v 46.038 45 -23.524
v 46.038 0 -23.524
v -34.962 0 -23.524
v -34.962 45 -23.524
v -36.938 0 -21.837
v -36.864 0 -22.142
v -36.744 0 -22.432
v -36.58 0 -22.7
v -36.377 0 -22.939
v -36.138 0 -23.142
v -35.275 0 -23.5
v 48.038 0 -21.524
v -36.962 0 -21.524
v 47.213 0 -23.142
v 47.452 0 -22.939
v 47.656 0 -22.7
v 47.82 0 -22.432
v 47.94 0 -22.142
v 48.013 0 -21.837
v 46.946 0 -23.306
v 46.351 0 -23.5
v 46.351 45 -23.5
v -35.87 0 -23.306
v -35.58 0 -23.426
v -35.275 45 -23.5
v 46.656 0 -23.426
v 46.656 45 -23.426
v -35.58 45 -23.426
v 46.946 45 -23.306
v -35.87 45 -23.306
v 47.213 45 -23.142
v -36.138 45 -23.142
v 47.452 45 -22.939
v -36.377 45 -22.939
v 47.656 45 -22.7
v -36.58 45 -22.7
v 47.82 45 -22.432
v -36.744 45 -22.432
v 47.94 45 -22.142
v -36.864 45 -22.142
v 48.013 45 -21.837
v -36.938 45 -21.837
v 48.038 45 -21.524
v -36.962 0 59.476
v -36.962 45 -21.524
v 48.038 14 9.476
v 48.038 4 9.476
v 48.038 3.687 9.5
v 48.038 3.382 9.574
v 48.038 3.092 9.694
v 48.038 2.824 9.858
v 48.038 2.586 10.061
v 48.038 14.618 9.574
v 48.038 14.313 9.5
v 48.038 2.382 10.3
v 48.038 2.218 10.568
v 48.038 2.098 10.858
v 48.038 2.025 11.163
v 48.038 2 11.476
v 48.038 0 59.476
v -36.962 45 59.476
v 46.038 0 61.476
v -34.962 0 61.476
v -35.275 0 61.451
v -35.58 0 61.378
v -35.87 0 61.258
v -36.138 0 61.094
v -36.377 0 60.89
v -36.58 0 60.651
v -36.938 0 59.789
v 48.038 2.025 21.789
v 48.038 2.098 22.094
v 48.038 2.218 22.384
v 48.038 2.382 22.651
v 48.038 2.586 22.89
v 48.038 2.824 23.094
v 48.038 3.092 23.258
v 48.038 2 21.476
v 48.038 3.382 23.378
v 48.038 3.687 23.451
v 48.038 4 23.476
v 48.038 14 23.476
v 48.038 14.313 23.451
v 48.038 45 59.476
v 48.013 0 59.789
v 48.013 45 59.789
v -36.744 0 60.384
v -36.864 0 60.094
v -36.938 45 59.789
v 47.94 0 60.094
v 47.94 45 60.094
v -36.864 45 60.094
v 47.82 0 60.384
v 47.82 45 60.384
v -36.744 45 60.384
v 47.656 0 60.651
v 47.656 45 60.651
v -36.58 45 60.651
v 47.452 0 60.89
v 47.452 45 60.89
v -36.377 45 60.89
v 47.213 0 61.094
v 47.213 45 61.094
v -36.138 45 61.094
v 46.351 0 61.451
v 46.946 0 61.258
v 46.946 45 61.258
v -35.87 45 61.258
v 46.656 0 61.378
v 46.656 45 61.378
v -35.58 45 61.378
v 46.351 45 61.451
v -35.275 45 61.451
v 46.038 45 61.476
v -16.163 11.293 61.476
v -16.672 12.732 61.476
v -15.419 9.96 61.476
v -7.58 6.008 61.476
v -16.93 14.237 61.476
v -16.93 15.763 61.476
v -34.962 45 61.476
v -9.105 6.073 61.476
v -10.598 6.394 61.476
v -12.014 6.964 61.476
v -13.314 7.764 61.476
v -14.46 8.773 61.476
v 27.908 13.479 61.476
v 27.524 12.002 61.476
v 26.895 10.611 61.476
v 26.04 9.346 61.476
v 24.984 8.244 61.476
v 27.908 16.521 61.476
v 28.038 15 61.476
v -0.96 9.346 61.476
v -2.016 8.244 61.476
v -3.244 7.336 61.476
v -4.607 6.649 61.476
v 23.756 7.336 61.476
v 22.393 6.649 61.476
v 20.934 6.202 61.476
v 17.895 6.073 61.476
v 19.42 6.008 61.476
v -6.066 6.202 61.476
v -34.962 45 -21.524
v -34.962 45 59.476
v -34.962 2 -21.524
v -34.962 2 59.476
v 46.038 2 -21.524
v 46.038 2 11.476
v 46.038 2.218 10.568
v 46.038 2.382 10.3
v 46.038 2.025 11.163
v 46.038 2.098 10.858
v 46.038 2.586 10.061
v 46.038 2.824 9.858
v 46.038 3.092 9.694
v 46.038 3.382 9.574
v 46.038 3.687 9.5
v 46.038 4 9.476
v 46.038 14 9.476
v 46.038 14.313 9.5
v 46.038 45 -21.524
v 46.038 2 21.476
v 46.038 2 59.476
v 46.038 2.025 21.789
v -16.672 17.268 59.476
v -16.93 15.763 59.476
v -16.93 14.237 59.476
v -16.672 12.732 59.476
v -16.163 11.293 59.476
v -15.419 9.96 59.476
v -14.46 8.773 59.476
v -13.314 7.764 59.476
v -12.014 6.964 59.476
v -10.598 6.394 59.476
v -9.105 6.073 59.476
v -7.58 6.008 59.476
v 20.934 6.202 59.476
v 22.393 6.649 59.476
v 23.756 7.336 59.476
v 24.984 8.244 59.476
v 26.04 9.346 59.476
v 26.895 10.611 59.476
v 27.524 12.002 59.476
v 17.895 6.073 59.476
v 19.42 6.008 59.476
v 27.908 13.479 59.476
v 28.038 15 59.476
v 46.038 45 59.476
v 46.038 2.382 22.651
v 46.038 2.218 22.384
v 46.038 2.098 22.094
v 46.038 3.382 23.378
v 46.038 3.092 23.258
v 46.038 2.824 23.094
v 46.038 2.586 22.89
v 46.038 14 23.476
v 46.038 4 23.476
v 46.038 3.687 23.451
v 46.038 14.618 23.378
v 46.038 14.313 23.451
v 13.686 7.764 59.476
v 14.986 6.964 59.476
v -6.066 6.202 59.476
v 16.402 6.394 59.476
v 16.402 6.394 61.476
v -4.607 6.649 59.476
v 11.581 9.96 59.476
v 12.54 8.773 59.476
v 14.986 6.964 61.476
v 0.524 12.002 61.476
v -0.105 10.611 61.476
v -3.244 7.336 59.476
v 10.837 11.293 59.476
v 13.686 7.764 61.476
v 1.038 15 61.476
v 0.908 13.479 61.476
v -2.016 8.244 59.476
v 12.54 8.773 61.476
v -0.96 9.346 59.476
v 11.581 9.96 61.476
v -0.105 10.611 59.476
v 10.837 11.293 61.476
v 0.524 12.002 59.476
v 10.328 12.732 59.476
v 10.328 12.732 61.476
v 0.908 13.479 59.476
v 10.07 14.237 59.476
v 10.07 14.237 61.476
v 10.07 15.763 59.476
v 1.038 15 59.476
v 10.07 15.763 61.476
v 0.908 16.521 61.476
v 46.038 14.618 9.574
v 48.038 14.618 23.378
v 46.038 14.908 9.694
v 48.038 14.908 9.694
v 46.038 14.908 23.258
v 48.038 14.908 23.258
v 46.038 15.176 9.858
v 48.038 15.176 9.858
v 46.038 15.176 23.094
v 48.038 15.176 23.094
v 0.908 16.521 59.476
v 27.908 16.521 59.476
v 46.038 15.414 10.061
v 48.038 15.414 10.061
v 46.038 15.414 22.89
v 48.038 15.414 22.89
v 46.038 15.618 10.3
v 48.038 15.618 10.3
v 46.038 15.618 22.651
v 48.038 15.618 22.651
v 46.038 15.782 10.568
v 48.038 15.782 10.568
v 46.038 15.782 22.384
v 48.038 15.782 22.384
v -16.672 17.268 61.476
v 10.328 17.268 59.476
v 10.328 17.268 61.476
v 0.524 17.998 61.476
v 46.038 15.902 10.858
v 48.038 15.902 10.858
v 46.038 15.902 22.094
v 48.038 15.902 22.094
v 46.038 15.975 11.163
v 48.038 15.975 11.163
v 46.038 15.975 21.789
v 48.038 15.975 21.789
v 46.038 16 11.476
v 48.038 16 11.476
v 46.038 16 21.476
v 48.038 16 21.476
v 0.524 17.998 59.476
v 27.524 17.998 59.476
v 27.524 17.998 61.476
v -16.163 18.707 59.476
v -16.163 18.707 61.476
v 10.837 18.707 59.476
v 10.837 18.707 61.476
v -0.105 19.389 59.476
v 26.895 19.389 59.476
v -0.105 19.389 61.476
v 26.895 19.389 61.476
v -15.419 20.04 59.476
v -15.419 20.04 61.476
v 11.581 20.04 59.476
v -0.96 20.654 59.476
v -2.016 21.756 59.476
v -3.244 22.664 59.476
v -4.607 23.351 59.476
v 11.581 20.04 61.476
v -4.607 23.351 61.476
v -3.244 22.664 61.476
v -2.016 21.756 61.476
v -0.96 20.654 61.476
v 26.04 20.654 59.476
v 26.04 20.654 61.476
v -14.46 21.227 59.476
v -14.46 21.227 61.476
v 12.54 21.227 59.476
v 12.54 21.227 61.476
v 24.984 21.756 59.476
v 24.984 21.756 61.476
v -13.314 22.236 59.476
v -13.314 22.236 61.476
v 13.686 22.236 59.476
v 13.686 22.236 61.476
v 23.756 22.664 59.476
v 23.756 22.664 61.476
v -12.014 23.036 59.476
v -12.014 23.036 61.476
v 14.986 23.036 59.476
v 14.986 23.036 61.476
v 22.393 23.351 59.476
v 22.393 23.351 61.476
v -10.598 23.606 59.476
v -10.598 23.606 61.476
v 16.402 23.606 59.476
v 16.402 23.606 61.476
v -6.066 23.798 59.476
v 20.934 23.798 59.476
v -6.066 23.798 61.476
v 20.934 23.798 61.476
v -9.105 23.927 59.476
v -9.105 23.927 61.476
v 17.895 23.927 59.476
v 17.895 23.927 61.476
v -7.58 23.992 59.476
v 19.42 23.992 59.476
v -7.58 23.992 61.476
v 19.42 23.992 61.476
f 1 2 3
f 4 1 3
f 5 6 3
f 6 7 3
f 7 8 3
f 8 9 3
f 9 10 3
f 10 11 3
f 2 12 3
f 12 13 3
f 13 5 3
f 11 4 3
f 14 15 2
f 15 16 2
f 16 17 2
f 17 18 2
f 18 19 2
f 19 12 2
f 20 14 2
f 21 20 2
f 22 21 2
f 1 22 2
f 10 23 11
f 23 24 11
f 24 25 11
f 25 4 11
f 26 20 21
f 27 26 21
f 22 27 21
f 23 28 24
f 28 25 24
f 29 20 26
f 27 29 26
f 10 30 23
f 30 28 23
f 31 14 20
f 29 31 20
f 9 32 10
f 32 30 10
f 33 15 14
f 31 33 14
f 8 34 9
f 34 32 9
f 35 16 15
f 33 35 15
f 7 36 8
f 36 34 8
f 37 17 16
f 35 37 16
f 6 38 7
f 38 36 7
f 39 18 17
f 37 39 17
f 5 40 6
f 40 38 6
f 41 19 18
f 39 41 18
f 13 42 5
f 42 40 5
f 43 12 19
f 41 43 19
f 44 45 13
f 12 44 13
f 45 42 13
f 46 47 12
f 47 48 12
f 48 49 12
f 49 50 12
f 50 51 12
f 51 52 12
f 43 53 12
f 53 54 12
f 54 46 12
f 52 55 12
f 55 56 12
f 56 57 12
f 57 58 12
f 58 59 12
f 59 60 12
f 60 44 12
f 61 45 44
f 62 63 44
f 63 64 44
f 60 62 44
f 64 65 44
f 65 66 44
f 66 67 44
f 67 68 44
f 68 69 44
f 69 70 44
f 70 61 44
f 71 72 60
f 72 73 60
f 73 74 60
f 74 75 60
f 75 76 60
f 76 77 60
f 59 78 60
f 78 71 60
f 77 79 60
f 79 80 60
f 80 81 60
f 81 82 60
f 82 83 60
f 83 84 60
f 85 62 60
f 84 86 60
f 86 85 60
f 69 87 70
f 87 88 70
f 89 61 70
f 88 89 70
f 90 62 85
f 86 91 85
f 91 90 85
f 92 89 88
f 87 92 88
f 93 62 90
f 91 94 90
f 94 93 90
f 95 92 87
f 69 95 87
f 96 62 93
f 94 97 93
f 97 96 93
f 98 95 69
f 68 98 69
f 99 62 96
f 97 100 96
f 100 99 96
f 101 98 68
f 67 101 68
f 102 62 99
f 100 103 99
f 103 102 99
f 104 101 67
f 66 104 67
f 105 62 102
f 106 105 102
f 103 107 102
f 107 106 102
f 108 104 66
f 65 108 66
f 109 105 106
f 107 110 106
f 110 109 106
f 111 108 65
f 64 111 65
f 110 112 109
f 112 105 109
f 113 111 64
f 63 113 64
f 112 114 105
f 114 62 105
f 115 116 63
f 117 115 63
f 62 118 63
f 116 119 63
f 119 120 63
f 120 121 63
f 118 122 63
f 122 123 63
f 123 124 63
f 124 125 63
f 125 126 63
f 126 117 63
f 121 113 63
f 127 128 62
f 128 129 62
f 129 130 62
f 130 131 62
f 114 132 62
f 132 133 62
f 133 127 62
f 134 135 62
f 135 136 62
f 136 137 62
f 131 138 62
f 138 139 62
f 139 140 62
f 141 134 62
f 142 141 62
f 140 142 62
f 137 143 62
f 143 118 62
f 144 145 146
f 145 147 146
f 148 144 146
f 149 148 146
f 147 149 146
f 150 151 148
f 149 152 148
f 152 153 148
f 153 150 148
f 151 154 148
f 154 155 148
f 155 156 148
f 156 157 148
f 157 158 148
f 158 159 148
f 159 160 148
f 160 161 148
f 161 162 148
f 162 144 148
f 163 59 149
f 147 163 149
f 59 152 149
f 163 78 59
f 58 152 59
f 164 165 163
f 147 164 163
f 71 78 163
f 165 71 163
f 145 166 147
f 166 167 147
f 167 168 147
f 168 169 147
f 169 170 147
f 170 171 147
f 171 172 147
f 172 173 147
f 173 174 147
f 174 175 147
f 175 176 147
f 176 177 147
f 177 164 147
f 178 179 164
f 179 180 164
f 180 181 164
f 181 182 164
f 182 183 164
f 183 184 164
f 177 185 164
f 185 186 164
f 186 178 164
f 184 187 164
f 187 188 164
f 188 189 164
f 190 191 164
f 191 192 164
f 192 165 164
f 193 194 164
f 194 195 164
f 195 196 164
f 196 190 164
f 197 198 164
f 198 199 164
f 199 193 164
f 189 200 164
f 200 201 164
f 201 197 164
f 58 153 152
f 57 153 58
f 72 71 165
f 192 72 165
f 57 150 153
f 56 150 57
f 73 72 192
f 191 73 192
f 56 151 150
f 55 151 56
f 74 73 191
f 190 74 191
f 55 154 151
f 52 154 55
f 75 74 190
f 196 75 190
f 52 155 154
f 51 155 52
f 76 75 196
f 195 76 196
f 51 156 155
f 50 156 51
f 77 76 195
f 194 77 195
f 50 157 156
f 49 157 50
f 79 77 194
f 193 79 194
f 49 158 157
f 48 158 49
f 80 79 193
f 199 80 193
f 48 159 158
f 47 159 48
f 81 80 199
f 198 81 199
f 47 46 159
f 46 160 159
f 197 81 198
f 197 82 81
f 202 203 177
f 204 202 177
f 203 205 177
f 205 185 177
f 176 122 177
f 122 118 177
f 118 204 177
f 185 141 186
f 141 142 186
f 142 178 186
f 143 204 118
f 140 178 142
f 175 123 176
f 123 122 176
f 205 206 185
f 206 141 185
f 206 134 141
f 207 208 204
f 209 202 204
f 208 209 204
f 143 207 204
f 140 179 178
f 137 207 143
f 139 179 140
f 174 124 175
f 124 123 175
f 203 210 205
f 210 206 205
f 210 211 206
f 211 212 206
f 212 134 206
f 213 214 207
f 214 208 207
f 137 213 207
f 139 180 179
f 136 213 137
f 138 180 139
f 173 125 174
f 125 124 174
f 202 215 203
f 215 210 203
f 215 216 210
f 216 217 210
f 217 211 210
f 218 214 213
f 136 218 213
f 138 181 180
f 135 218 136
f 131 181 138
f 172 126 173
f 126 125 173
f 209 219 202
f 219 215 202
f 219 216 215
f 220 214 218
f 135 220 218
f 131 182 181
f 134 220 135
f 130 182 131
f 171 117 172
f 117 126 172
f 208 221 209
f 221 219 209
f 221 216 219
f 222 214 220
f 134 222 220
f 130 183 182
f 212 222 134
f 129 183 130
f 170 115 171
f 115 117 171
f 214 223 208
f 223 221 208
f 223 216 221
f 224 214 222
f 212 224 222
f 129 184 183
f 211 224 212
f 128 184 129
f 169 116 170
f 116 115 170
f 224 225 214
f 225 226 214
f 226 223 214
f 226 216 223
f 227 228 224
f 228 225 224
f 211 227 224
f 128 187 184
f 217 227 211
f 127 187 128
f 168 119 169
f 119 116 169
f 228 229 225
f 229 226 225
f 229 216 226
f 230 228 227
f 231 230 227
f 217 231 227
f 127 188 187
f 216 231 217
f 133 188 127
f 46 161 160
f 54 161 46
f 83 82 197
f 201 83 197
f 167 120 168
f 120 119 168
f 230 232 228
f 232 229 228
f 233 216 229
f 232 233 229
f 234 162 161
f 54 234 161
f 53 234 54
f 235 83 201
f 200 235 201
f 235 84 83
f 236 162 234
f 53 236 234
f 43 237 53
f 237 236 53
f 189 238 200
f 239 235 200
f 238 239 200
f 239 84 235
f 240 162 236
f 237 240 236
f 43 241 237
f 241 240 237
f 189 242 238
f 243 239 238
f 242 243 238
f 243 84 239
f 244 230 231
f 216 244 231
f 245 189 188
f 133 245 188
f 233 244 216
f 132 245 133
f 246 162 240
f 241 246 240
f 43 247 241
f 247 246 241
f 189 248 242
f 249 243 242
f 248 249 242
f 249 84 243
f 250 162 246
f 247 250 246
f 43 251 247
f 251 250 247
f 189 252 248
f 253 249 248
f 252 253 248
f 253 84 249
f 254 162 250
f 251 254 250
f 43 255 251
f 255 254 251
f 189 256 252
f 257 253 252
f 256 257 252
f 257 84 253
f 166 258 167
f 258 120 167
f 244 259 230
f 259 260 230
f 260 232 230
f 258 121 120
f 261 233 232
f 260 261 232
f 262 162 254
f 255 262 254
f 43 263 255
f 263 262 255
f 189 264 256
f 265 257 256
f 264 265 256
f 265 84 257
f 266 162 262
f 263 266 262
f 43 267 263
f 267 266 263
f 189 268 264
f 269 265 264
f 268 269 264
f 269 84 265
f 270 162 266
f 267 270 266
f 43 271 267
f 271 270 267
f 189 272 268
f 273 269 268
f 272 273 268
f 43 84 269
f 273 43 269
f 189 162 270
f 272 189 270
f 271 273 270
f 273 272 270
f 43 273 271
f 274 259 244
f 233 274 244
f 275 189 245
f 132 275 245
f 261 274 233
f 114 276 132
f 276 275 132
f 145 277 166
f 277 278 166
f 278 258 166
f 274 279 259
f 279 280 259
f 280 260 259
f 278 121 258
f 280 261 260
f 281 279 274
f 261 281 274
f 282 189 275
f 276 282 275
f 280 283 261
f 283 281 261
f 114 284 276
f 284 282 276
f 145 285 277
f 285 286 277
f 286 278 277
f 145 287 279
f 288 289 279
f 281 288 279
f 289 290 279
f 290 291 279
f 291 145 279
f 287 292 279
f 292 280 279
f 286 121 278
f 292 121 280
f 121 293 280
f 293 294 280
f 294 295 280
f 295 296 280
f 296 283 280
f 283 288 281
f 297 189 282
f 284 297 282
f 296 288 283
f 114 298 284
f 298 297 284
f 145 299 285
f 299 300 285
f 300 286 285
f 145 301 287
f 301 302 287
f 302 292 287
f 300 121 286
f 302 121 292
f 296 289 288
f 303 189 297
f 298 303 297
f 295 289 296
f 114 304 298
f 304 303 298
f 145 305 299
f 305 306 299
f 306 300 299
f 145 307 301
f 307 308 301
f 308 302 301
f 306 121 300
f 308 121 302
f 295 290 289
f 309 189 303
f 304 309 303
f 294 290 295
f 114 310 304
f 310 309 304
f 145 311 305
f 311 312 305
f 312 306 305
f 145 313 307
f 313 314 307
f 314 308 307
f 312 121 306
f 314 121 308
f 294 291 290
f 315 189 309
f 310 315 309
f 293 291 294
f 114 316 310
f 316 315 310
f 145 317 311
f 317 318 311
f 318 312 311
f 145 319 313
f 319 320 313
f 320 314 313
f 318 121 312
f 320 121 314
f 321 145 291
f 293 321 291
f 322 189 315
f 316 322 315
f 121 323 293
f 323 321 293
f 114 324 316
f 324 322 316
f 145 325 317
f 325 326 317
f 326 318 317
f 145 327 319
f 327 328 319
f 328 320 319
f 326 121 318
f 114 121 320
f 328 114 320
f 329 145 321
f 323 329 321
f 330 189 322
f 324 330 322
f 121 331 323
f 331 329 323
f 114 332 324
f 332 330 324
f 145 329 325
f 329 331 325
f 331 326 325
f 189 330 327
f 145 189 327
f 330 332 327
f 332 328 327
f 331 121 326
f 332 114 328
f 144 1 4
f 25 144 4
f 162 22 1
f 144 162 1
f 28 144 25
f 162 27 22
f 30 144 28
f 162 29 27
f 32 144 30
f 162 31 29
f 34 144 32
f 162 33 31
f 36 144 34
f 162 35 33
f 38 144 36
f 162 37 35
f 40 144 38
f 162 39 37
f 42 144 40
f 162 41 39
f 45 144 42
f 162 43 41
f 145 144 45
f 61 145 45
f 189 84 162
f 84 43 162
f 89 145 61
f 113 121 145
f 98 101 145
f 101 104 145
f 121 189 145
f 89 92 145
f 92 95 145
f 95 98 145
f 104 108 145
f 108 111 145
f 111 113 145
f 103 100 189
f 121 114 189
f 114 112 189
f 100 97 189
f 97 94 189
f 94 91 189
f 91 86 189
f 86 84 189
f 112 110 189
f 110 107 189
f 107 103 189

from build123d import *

# Parameters (mm, degrees)
SKETCH1_W           = 85
SKETCH1_H           = 85
BOSS_EXTRUDE1_DEPTH = 2
SKETCH2_W           = 85
SKETCH2_H           = 85
SKETCH2_W_2         = 81
SKETCH2_H_2         = 81
BOSS_EXTRUDE2_DEPTH = 43
SKETCH3_R           = 9
CUT_EXTRUDE1_DEPTH  = 2
SKETCH4_W           = 14
SKETCH4_H           = 14
CUT_EXTRUDE2_DEPTH  = 2
FILLET1_R           = 2


with BuildPart() as part:
    # Sketch1 → Boss-Extrude1 (new body)
    with BuildSketch(Plane(origin=(0, 0, 0), x_dir=(1, 0, 0), z_dir=(0, 1, 0))):
        with Locations((5.537676609, -18.97566719)):
            Rectangle(SKETCH1_W, SKETCH1_H)
    extrude(amount=BOSS_EXTRUDE1_DEPTH)

    # Sketch2 → Boss-Extrude2 (add)
    with BuildSketch(Plane(origin=(0, 2, 0), x_dir=(1, 0, 0), z_dir=(0, 1, 0))):
        with Locations((5.537676609, -18.97566719)):
            Rectangle(SKETCH2_W, SKETCH2_H)
        with Locations((5.537676609, -18.97566719)):
            Rectangle(SKETCH2_W_2, SKETCH2_H_2, mode=Mode.SUBTRACT)
    extrude(amount=BOSS_EXTRUDE2_DEPTH)

    # Sketch3 → Cut-Extrude1 (cut)
    with BuildSketch(Plane.XY.offset(61.47566719)):
        with Locations((-7.962323391, 15)):
            Circle(SKETCH3_R)
        with Locations((19.037676609, 15)):
            Circle(SKETCH3_R)
    extrude(amount=-CUT_EXTRUDE1_DEPTH, mode=Mode.SUBTRACT)

    # Sketch4 → Cut-Extrude2 (cut)
    with BuildSketch(Plane(origin=(48.037676609, 0, 0), x_dir=(0, 0, -1), z_dir=(1, 0, 0))):
        with Locations((-16.47566719, 9)):
            Rectangle(SKETCH4_W, SKETCH4_H)
    extrude(amount=-CUT_EXTRUDE2_DEPTH, mode=Mode.SUBTRACT)

    # Fillet1
    fillet1_edges = [part.edges().sort_by_distance(p)[0] for p in [
        (47.037676609, 2, 23.47566719),
        (47.037676609, 16, 23.47566719),
        (47.037676609, 16, 9.47566719),
        (47.037676609, 2, 9.47566719),
        (-36.962323391, 22.5, -23.52433281),
        (-36.962323391, 22.5, 61.47566719),
        (48.037676609, 22.5, 61.47566719),
        (48.037676609, 22.5, -23.52433281),
    ]]
    fillet(fillet1_edges, radius=FILLET1_R)


solid = part.part
